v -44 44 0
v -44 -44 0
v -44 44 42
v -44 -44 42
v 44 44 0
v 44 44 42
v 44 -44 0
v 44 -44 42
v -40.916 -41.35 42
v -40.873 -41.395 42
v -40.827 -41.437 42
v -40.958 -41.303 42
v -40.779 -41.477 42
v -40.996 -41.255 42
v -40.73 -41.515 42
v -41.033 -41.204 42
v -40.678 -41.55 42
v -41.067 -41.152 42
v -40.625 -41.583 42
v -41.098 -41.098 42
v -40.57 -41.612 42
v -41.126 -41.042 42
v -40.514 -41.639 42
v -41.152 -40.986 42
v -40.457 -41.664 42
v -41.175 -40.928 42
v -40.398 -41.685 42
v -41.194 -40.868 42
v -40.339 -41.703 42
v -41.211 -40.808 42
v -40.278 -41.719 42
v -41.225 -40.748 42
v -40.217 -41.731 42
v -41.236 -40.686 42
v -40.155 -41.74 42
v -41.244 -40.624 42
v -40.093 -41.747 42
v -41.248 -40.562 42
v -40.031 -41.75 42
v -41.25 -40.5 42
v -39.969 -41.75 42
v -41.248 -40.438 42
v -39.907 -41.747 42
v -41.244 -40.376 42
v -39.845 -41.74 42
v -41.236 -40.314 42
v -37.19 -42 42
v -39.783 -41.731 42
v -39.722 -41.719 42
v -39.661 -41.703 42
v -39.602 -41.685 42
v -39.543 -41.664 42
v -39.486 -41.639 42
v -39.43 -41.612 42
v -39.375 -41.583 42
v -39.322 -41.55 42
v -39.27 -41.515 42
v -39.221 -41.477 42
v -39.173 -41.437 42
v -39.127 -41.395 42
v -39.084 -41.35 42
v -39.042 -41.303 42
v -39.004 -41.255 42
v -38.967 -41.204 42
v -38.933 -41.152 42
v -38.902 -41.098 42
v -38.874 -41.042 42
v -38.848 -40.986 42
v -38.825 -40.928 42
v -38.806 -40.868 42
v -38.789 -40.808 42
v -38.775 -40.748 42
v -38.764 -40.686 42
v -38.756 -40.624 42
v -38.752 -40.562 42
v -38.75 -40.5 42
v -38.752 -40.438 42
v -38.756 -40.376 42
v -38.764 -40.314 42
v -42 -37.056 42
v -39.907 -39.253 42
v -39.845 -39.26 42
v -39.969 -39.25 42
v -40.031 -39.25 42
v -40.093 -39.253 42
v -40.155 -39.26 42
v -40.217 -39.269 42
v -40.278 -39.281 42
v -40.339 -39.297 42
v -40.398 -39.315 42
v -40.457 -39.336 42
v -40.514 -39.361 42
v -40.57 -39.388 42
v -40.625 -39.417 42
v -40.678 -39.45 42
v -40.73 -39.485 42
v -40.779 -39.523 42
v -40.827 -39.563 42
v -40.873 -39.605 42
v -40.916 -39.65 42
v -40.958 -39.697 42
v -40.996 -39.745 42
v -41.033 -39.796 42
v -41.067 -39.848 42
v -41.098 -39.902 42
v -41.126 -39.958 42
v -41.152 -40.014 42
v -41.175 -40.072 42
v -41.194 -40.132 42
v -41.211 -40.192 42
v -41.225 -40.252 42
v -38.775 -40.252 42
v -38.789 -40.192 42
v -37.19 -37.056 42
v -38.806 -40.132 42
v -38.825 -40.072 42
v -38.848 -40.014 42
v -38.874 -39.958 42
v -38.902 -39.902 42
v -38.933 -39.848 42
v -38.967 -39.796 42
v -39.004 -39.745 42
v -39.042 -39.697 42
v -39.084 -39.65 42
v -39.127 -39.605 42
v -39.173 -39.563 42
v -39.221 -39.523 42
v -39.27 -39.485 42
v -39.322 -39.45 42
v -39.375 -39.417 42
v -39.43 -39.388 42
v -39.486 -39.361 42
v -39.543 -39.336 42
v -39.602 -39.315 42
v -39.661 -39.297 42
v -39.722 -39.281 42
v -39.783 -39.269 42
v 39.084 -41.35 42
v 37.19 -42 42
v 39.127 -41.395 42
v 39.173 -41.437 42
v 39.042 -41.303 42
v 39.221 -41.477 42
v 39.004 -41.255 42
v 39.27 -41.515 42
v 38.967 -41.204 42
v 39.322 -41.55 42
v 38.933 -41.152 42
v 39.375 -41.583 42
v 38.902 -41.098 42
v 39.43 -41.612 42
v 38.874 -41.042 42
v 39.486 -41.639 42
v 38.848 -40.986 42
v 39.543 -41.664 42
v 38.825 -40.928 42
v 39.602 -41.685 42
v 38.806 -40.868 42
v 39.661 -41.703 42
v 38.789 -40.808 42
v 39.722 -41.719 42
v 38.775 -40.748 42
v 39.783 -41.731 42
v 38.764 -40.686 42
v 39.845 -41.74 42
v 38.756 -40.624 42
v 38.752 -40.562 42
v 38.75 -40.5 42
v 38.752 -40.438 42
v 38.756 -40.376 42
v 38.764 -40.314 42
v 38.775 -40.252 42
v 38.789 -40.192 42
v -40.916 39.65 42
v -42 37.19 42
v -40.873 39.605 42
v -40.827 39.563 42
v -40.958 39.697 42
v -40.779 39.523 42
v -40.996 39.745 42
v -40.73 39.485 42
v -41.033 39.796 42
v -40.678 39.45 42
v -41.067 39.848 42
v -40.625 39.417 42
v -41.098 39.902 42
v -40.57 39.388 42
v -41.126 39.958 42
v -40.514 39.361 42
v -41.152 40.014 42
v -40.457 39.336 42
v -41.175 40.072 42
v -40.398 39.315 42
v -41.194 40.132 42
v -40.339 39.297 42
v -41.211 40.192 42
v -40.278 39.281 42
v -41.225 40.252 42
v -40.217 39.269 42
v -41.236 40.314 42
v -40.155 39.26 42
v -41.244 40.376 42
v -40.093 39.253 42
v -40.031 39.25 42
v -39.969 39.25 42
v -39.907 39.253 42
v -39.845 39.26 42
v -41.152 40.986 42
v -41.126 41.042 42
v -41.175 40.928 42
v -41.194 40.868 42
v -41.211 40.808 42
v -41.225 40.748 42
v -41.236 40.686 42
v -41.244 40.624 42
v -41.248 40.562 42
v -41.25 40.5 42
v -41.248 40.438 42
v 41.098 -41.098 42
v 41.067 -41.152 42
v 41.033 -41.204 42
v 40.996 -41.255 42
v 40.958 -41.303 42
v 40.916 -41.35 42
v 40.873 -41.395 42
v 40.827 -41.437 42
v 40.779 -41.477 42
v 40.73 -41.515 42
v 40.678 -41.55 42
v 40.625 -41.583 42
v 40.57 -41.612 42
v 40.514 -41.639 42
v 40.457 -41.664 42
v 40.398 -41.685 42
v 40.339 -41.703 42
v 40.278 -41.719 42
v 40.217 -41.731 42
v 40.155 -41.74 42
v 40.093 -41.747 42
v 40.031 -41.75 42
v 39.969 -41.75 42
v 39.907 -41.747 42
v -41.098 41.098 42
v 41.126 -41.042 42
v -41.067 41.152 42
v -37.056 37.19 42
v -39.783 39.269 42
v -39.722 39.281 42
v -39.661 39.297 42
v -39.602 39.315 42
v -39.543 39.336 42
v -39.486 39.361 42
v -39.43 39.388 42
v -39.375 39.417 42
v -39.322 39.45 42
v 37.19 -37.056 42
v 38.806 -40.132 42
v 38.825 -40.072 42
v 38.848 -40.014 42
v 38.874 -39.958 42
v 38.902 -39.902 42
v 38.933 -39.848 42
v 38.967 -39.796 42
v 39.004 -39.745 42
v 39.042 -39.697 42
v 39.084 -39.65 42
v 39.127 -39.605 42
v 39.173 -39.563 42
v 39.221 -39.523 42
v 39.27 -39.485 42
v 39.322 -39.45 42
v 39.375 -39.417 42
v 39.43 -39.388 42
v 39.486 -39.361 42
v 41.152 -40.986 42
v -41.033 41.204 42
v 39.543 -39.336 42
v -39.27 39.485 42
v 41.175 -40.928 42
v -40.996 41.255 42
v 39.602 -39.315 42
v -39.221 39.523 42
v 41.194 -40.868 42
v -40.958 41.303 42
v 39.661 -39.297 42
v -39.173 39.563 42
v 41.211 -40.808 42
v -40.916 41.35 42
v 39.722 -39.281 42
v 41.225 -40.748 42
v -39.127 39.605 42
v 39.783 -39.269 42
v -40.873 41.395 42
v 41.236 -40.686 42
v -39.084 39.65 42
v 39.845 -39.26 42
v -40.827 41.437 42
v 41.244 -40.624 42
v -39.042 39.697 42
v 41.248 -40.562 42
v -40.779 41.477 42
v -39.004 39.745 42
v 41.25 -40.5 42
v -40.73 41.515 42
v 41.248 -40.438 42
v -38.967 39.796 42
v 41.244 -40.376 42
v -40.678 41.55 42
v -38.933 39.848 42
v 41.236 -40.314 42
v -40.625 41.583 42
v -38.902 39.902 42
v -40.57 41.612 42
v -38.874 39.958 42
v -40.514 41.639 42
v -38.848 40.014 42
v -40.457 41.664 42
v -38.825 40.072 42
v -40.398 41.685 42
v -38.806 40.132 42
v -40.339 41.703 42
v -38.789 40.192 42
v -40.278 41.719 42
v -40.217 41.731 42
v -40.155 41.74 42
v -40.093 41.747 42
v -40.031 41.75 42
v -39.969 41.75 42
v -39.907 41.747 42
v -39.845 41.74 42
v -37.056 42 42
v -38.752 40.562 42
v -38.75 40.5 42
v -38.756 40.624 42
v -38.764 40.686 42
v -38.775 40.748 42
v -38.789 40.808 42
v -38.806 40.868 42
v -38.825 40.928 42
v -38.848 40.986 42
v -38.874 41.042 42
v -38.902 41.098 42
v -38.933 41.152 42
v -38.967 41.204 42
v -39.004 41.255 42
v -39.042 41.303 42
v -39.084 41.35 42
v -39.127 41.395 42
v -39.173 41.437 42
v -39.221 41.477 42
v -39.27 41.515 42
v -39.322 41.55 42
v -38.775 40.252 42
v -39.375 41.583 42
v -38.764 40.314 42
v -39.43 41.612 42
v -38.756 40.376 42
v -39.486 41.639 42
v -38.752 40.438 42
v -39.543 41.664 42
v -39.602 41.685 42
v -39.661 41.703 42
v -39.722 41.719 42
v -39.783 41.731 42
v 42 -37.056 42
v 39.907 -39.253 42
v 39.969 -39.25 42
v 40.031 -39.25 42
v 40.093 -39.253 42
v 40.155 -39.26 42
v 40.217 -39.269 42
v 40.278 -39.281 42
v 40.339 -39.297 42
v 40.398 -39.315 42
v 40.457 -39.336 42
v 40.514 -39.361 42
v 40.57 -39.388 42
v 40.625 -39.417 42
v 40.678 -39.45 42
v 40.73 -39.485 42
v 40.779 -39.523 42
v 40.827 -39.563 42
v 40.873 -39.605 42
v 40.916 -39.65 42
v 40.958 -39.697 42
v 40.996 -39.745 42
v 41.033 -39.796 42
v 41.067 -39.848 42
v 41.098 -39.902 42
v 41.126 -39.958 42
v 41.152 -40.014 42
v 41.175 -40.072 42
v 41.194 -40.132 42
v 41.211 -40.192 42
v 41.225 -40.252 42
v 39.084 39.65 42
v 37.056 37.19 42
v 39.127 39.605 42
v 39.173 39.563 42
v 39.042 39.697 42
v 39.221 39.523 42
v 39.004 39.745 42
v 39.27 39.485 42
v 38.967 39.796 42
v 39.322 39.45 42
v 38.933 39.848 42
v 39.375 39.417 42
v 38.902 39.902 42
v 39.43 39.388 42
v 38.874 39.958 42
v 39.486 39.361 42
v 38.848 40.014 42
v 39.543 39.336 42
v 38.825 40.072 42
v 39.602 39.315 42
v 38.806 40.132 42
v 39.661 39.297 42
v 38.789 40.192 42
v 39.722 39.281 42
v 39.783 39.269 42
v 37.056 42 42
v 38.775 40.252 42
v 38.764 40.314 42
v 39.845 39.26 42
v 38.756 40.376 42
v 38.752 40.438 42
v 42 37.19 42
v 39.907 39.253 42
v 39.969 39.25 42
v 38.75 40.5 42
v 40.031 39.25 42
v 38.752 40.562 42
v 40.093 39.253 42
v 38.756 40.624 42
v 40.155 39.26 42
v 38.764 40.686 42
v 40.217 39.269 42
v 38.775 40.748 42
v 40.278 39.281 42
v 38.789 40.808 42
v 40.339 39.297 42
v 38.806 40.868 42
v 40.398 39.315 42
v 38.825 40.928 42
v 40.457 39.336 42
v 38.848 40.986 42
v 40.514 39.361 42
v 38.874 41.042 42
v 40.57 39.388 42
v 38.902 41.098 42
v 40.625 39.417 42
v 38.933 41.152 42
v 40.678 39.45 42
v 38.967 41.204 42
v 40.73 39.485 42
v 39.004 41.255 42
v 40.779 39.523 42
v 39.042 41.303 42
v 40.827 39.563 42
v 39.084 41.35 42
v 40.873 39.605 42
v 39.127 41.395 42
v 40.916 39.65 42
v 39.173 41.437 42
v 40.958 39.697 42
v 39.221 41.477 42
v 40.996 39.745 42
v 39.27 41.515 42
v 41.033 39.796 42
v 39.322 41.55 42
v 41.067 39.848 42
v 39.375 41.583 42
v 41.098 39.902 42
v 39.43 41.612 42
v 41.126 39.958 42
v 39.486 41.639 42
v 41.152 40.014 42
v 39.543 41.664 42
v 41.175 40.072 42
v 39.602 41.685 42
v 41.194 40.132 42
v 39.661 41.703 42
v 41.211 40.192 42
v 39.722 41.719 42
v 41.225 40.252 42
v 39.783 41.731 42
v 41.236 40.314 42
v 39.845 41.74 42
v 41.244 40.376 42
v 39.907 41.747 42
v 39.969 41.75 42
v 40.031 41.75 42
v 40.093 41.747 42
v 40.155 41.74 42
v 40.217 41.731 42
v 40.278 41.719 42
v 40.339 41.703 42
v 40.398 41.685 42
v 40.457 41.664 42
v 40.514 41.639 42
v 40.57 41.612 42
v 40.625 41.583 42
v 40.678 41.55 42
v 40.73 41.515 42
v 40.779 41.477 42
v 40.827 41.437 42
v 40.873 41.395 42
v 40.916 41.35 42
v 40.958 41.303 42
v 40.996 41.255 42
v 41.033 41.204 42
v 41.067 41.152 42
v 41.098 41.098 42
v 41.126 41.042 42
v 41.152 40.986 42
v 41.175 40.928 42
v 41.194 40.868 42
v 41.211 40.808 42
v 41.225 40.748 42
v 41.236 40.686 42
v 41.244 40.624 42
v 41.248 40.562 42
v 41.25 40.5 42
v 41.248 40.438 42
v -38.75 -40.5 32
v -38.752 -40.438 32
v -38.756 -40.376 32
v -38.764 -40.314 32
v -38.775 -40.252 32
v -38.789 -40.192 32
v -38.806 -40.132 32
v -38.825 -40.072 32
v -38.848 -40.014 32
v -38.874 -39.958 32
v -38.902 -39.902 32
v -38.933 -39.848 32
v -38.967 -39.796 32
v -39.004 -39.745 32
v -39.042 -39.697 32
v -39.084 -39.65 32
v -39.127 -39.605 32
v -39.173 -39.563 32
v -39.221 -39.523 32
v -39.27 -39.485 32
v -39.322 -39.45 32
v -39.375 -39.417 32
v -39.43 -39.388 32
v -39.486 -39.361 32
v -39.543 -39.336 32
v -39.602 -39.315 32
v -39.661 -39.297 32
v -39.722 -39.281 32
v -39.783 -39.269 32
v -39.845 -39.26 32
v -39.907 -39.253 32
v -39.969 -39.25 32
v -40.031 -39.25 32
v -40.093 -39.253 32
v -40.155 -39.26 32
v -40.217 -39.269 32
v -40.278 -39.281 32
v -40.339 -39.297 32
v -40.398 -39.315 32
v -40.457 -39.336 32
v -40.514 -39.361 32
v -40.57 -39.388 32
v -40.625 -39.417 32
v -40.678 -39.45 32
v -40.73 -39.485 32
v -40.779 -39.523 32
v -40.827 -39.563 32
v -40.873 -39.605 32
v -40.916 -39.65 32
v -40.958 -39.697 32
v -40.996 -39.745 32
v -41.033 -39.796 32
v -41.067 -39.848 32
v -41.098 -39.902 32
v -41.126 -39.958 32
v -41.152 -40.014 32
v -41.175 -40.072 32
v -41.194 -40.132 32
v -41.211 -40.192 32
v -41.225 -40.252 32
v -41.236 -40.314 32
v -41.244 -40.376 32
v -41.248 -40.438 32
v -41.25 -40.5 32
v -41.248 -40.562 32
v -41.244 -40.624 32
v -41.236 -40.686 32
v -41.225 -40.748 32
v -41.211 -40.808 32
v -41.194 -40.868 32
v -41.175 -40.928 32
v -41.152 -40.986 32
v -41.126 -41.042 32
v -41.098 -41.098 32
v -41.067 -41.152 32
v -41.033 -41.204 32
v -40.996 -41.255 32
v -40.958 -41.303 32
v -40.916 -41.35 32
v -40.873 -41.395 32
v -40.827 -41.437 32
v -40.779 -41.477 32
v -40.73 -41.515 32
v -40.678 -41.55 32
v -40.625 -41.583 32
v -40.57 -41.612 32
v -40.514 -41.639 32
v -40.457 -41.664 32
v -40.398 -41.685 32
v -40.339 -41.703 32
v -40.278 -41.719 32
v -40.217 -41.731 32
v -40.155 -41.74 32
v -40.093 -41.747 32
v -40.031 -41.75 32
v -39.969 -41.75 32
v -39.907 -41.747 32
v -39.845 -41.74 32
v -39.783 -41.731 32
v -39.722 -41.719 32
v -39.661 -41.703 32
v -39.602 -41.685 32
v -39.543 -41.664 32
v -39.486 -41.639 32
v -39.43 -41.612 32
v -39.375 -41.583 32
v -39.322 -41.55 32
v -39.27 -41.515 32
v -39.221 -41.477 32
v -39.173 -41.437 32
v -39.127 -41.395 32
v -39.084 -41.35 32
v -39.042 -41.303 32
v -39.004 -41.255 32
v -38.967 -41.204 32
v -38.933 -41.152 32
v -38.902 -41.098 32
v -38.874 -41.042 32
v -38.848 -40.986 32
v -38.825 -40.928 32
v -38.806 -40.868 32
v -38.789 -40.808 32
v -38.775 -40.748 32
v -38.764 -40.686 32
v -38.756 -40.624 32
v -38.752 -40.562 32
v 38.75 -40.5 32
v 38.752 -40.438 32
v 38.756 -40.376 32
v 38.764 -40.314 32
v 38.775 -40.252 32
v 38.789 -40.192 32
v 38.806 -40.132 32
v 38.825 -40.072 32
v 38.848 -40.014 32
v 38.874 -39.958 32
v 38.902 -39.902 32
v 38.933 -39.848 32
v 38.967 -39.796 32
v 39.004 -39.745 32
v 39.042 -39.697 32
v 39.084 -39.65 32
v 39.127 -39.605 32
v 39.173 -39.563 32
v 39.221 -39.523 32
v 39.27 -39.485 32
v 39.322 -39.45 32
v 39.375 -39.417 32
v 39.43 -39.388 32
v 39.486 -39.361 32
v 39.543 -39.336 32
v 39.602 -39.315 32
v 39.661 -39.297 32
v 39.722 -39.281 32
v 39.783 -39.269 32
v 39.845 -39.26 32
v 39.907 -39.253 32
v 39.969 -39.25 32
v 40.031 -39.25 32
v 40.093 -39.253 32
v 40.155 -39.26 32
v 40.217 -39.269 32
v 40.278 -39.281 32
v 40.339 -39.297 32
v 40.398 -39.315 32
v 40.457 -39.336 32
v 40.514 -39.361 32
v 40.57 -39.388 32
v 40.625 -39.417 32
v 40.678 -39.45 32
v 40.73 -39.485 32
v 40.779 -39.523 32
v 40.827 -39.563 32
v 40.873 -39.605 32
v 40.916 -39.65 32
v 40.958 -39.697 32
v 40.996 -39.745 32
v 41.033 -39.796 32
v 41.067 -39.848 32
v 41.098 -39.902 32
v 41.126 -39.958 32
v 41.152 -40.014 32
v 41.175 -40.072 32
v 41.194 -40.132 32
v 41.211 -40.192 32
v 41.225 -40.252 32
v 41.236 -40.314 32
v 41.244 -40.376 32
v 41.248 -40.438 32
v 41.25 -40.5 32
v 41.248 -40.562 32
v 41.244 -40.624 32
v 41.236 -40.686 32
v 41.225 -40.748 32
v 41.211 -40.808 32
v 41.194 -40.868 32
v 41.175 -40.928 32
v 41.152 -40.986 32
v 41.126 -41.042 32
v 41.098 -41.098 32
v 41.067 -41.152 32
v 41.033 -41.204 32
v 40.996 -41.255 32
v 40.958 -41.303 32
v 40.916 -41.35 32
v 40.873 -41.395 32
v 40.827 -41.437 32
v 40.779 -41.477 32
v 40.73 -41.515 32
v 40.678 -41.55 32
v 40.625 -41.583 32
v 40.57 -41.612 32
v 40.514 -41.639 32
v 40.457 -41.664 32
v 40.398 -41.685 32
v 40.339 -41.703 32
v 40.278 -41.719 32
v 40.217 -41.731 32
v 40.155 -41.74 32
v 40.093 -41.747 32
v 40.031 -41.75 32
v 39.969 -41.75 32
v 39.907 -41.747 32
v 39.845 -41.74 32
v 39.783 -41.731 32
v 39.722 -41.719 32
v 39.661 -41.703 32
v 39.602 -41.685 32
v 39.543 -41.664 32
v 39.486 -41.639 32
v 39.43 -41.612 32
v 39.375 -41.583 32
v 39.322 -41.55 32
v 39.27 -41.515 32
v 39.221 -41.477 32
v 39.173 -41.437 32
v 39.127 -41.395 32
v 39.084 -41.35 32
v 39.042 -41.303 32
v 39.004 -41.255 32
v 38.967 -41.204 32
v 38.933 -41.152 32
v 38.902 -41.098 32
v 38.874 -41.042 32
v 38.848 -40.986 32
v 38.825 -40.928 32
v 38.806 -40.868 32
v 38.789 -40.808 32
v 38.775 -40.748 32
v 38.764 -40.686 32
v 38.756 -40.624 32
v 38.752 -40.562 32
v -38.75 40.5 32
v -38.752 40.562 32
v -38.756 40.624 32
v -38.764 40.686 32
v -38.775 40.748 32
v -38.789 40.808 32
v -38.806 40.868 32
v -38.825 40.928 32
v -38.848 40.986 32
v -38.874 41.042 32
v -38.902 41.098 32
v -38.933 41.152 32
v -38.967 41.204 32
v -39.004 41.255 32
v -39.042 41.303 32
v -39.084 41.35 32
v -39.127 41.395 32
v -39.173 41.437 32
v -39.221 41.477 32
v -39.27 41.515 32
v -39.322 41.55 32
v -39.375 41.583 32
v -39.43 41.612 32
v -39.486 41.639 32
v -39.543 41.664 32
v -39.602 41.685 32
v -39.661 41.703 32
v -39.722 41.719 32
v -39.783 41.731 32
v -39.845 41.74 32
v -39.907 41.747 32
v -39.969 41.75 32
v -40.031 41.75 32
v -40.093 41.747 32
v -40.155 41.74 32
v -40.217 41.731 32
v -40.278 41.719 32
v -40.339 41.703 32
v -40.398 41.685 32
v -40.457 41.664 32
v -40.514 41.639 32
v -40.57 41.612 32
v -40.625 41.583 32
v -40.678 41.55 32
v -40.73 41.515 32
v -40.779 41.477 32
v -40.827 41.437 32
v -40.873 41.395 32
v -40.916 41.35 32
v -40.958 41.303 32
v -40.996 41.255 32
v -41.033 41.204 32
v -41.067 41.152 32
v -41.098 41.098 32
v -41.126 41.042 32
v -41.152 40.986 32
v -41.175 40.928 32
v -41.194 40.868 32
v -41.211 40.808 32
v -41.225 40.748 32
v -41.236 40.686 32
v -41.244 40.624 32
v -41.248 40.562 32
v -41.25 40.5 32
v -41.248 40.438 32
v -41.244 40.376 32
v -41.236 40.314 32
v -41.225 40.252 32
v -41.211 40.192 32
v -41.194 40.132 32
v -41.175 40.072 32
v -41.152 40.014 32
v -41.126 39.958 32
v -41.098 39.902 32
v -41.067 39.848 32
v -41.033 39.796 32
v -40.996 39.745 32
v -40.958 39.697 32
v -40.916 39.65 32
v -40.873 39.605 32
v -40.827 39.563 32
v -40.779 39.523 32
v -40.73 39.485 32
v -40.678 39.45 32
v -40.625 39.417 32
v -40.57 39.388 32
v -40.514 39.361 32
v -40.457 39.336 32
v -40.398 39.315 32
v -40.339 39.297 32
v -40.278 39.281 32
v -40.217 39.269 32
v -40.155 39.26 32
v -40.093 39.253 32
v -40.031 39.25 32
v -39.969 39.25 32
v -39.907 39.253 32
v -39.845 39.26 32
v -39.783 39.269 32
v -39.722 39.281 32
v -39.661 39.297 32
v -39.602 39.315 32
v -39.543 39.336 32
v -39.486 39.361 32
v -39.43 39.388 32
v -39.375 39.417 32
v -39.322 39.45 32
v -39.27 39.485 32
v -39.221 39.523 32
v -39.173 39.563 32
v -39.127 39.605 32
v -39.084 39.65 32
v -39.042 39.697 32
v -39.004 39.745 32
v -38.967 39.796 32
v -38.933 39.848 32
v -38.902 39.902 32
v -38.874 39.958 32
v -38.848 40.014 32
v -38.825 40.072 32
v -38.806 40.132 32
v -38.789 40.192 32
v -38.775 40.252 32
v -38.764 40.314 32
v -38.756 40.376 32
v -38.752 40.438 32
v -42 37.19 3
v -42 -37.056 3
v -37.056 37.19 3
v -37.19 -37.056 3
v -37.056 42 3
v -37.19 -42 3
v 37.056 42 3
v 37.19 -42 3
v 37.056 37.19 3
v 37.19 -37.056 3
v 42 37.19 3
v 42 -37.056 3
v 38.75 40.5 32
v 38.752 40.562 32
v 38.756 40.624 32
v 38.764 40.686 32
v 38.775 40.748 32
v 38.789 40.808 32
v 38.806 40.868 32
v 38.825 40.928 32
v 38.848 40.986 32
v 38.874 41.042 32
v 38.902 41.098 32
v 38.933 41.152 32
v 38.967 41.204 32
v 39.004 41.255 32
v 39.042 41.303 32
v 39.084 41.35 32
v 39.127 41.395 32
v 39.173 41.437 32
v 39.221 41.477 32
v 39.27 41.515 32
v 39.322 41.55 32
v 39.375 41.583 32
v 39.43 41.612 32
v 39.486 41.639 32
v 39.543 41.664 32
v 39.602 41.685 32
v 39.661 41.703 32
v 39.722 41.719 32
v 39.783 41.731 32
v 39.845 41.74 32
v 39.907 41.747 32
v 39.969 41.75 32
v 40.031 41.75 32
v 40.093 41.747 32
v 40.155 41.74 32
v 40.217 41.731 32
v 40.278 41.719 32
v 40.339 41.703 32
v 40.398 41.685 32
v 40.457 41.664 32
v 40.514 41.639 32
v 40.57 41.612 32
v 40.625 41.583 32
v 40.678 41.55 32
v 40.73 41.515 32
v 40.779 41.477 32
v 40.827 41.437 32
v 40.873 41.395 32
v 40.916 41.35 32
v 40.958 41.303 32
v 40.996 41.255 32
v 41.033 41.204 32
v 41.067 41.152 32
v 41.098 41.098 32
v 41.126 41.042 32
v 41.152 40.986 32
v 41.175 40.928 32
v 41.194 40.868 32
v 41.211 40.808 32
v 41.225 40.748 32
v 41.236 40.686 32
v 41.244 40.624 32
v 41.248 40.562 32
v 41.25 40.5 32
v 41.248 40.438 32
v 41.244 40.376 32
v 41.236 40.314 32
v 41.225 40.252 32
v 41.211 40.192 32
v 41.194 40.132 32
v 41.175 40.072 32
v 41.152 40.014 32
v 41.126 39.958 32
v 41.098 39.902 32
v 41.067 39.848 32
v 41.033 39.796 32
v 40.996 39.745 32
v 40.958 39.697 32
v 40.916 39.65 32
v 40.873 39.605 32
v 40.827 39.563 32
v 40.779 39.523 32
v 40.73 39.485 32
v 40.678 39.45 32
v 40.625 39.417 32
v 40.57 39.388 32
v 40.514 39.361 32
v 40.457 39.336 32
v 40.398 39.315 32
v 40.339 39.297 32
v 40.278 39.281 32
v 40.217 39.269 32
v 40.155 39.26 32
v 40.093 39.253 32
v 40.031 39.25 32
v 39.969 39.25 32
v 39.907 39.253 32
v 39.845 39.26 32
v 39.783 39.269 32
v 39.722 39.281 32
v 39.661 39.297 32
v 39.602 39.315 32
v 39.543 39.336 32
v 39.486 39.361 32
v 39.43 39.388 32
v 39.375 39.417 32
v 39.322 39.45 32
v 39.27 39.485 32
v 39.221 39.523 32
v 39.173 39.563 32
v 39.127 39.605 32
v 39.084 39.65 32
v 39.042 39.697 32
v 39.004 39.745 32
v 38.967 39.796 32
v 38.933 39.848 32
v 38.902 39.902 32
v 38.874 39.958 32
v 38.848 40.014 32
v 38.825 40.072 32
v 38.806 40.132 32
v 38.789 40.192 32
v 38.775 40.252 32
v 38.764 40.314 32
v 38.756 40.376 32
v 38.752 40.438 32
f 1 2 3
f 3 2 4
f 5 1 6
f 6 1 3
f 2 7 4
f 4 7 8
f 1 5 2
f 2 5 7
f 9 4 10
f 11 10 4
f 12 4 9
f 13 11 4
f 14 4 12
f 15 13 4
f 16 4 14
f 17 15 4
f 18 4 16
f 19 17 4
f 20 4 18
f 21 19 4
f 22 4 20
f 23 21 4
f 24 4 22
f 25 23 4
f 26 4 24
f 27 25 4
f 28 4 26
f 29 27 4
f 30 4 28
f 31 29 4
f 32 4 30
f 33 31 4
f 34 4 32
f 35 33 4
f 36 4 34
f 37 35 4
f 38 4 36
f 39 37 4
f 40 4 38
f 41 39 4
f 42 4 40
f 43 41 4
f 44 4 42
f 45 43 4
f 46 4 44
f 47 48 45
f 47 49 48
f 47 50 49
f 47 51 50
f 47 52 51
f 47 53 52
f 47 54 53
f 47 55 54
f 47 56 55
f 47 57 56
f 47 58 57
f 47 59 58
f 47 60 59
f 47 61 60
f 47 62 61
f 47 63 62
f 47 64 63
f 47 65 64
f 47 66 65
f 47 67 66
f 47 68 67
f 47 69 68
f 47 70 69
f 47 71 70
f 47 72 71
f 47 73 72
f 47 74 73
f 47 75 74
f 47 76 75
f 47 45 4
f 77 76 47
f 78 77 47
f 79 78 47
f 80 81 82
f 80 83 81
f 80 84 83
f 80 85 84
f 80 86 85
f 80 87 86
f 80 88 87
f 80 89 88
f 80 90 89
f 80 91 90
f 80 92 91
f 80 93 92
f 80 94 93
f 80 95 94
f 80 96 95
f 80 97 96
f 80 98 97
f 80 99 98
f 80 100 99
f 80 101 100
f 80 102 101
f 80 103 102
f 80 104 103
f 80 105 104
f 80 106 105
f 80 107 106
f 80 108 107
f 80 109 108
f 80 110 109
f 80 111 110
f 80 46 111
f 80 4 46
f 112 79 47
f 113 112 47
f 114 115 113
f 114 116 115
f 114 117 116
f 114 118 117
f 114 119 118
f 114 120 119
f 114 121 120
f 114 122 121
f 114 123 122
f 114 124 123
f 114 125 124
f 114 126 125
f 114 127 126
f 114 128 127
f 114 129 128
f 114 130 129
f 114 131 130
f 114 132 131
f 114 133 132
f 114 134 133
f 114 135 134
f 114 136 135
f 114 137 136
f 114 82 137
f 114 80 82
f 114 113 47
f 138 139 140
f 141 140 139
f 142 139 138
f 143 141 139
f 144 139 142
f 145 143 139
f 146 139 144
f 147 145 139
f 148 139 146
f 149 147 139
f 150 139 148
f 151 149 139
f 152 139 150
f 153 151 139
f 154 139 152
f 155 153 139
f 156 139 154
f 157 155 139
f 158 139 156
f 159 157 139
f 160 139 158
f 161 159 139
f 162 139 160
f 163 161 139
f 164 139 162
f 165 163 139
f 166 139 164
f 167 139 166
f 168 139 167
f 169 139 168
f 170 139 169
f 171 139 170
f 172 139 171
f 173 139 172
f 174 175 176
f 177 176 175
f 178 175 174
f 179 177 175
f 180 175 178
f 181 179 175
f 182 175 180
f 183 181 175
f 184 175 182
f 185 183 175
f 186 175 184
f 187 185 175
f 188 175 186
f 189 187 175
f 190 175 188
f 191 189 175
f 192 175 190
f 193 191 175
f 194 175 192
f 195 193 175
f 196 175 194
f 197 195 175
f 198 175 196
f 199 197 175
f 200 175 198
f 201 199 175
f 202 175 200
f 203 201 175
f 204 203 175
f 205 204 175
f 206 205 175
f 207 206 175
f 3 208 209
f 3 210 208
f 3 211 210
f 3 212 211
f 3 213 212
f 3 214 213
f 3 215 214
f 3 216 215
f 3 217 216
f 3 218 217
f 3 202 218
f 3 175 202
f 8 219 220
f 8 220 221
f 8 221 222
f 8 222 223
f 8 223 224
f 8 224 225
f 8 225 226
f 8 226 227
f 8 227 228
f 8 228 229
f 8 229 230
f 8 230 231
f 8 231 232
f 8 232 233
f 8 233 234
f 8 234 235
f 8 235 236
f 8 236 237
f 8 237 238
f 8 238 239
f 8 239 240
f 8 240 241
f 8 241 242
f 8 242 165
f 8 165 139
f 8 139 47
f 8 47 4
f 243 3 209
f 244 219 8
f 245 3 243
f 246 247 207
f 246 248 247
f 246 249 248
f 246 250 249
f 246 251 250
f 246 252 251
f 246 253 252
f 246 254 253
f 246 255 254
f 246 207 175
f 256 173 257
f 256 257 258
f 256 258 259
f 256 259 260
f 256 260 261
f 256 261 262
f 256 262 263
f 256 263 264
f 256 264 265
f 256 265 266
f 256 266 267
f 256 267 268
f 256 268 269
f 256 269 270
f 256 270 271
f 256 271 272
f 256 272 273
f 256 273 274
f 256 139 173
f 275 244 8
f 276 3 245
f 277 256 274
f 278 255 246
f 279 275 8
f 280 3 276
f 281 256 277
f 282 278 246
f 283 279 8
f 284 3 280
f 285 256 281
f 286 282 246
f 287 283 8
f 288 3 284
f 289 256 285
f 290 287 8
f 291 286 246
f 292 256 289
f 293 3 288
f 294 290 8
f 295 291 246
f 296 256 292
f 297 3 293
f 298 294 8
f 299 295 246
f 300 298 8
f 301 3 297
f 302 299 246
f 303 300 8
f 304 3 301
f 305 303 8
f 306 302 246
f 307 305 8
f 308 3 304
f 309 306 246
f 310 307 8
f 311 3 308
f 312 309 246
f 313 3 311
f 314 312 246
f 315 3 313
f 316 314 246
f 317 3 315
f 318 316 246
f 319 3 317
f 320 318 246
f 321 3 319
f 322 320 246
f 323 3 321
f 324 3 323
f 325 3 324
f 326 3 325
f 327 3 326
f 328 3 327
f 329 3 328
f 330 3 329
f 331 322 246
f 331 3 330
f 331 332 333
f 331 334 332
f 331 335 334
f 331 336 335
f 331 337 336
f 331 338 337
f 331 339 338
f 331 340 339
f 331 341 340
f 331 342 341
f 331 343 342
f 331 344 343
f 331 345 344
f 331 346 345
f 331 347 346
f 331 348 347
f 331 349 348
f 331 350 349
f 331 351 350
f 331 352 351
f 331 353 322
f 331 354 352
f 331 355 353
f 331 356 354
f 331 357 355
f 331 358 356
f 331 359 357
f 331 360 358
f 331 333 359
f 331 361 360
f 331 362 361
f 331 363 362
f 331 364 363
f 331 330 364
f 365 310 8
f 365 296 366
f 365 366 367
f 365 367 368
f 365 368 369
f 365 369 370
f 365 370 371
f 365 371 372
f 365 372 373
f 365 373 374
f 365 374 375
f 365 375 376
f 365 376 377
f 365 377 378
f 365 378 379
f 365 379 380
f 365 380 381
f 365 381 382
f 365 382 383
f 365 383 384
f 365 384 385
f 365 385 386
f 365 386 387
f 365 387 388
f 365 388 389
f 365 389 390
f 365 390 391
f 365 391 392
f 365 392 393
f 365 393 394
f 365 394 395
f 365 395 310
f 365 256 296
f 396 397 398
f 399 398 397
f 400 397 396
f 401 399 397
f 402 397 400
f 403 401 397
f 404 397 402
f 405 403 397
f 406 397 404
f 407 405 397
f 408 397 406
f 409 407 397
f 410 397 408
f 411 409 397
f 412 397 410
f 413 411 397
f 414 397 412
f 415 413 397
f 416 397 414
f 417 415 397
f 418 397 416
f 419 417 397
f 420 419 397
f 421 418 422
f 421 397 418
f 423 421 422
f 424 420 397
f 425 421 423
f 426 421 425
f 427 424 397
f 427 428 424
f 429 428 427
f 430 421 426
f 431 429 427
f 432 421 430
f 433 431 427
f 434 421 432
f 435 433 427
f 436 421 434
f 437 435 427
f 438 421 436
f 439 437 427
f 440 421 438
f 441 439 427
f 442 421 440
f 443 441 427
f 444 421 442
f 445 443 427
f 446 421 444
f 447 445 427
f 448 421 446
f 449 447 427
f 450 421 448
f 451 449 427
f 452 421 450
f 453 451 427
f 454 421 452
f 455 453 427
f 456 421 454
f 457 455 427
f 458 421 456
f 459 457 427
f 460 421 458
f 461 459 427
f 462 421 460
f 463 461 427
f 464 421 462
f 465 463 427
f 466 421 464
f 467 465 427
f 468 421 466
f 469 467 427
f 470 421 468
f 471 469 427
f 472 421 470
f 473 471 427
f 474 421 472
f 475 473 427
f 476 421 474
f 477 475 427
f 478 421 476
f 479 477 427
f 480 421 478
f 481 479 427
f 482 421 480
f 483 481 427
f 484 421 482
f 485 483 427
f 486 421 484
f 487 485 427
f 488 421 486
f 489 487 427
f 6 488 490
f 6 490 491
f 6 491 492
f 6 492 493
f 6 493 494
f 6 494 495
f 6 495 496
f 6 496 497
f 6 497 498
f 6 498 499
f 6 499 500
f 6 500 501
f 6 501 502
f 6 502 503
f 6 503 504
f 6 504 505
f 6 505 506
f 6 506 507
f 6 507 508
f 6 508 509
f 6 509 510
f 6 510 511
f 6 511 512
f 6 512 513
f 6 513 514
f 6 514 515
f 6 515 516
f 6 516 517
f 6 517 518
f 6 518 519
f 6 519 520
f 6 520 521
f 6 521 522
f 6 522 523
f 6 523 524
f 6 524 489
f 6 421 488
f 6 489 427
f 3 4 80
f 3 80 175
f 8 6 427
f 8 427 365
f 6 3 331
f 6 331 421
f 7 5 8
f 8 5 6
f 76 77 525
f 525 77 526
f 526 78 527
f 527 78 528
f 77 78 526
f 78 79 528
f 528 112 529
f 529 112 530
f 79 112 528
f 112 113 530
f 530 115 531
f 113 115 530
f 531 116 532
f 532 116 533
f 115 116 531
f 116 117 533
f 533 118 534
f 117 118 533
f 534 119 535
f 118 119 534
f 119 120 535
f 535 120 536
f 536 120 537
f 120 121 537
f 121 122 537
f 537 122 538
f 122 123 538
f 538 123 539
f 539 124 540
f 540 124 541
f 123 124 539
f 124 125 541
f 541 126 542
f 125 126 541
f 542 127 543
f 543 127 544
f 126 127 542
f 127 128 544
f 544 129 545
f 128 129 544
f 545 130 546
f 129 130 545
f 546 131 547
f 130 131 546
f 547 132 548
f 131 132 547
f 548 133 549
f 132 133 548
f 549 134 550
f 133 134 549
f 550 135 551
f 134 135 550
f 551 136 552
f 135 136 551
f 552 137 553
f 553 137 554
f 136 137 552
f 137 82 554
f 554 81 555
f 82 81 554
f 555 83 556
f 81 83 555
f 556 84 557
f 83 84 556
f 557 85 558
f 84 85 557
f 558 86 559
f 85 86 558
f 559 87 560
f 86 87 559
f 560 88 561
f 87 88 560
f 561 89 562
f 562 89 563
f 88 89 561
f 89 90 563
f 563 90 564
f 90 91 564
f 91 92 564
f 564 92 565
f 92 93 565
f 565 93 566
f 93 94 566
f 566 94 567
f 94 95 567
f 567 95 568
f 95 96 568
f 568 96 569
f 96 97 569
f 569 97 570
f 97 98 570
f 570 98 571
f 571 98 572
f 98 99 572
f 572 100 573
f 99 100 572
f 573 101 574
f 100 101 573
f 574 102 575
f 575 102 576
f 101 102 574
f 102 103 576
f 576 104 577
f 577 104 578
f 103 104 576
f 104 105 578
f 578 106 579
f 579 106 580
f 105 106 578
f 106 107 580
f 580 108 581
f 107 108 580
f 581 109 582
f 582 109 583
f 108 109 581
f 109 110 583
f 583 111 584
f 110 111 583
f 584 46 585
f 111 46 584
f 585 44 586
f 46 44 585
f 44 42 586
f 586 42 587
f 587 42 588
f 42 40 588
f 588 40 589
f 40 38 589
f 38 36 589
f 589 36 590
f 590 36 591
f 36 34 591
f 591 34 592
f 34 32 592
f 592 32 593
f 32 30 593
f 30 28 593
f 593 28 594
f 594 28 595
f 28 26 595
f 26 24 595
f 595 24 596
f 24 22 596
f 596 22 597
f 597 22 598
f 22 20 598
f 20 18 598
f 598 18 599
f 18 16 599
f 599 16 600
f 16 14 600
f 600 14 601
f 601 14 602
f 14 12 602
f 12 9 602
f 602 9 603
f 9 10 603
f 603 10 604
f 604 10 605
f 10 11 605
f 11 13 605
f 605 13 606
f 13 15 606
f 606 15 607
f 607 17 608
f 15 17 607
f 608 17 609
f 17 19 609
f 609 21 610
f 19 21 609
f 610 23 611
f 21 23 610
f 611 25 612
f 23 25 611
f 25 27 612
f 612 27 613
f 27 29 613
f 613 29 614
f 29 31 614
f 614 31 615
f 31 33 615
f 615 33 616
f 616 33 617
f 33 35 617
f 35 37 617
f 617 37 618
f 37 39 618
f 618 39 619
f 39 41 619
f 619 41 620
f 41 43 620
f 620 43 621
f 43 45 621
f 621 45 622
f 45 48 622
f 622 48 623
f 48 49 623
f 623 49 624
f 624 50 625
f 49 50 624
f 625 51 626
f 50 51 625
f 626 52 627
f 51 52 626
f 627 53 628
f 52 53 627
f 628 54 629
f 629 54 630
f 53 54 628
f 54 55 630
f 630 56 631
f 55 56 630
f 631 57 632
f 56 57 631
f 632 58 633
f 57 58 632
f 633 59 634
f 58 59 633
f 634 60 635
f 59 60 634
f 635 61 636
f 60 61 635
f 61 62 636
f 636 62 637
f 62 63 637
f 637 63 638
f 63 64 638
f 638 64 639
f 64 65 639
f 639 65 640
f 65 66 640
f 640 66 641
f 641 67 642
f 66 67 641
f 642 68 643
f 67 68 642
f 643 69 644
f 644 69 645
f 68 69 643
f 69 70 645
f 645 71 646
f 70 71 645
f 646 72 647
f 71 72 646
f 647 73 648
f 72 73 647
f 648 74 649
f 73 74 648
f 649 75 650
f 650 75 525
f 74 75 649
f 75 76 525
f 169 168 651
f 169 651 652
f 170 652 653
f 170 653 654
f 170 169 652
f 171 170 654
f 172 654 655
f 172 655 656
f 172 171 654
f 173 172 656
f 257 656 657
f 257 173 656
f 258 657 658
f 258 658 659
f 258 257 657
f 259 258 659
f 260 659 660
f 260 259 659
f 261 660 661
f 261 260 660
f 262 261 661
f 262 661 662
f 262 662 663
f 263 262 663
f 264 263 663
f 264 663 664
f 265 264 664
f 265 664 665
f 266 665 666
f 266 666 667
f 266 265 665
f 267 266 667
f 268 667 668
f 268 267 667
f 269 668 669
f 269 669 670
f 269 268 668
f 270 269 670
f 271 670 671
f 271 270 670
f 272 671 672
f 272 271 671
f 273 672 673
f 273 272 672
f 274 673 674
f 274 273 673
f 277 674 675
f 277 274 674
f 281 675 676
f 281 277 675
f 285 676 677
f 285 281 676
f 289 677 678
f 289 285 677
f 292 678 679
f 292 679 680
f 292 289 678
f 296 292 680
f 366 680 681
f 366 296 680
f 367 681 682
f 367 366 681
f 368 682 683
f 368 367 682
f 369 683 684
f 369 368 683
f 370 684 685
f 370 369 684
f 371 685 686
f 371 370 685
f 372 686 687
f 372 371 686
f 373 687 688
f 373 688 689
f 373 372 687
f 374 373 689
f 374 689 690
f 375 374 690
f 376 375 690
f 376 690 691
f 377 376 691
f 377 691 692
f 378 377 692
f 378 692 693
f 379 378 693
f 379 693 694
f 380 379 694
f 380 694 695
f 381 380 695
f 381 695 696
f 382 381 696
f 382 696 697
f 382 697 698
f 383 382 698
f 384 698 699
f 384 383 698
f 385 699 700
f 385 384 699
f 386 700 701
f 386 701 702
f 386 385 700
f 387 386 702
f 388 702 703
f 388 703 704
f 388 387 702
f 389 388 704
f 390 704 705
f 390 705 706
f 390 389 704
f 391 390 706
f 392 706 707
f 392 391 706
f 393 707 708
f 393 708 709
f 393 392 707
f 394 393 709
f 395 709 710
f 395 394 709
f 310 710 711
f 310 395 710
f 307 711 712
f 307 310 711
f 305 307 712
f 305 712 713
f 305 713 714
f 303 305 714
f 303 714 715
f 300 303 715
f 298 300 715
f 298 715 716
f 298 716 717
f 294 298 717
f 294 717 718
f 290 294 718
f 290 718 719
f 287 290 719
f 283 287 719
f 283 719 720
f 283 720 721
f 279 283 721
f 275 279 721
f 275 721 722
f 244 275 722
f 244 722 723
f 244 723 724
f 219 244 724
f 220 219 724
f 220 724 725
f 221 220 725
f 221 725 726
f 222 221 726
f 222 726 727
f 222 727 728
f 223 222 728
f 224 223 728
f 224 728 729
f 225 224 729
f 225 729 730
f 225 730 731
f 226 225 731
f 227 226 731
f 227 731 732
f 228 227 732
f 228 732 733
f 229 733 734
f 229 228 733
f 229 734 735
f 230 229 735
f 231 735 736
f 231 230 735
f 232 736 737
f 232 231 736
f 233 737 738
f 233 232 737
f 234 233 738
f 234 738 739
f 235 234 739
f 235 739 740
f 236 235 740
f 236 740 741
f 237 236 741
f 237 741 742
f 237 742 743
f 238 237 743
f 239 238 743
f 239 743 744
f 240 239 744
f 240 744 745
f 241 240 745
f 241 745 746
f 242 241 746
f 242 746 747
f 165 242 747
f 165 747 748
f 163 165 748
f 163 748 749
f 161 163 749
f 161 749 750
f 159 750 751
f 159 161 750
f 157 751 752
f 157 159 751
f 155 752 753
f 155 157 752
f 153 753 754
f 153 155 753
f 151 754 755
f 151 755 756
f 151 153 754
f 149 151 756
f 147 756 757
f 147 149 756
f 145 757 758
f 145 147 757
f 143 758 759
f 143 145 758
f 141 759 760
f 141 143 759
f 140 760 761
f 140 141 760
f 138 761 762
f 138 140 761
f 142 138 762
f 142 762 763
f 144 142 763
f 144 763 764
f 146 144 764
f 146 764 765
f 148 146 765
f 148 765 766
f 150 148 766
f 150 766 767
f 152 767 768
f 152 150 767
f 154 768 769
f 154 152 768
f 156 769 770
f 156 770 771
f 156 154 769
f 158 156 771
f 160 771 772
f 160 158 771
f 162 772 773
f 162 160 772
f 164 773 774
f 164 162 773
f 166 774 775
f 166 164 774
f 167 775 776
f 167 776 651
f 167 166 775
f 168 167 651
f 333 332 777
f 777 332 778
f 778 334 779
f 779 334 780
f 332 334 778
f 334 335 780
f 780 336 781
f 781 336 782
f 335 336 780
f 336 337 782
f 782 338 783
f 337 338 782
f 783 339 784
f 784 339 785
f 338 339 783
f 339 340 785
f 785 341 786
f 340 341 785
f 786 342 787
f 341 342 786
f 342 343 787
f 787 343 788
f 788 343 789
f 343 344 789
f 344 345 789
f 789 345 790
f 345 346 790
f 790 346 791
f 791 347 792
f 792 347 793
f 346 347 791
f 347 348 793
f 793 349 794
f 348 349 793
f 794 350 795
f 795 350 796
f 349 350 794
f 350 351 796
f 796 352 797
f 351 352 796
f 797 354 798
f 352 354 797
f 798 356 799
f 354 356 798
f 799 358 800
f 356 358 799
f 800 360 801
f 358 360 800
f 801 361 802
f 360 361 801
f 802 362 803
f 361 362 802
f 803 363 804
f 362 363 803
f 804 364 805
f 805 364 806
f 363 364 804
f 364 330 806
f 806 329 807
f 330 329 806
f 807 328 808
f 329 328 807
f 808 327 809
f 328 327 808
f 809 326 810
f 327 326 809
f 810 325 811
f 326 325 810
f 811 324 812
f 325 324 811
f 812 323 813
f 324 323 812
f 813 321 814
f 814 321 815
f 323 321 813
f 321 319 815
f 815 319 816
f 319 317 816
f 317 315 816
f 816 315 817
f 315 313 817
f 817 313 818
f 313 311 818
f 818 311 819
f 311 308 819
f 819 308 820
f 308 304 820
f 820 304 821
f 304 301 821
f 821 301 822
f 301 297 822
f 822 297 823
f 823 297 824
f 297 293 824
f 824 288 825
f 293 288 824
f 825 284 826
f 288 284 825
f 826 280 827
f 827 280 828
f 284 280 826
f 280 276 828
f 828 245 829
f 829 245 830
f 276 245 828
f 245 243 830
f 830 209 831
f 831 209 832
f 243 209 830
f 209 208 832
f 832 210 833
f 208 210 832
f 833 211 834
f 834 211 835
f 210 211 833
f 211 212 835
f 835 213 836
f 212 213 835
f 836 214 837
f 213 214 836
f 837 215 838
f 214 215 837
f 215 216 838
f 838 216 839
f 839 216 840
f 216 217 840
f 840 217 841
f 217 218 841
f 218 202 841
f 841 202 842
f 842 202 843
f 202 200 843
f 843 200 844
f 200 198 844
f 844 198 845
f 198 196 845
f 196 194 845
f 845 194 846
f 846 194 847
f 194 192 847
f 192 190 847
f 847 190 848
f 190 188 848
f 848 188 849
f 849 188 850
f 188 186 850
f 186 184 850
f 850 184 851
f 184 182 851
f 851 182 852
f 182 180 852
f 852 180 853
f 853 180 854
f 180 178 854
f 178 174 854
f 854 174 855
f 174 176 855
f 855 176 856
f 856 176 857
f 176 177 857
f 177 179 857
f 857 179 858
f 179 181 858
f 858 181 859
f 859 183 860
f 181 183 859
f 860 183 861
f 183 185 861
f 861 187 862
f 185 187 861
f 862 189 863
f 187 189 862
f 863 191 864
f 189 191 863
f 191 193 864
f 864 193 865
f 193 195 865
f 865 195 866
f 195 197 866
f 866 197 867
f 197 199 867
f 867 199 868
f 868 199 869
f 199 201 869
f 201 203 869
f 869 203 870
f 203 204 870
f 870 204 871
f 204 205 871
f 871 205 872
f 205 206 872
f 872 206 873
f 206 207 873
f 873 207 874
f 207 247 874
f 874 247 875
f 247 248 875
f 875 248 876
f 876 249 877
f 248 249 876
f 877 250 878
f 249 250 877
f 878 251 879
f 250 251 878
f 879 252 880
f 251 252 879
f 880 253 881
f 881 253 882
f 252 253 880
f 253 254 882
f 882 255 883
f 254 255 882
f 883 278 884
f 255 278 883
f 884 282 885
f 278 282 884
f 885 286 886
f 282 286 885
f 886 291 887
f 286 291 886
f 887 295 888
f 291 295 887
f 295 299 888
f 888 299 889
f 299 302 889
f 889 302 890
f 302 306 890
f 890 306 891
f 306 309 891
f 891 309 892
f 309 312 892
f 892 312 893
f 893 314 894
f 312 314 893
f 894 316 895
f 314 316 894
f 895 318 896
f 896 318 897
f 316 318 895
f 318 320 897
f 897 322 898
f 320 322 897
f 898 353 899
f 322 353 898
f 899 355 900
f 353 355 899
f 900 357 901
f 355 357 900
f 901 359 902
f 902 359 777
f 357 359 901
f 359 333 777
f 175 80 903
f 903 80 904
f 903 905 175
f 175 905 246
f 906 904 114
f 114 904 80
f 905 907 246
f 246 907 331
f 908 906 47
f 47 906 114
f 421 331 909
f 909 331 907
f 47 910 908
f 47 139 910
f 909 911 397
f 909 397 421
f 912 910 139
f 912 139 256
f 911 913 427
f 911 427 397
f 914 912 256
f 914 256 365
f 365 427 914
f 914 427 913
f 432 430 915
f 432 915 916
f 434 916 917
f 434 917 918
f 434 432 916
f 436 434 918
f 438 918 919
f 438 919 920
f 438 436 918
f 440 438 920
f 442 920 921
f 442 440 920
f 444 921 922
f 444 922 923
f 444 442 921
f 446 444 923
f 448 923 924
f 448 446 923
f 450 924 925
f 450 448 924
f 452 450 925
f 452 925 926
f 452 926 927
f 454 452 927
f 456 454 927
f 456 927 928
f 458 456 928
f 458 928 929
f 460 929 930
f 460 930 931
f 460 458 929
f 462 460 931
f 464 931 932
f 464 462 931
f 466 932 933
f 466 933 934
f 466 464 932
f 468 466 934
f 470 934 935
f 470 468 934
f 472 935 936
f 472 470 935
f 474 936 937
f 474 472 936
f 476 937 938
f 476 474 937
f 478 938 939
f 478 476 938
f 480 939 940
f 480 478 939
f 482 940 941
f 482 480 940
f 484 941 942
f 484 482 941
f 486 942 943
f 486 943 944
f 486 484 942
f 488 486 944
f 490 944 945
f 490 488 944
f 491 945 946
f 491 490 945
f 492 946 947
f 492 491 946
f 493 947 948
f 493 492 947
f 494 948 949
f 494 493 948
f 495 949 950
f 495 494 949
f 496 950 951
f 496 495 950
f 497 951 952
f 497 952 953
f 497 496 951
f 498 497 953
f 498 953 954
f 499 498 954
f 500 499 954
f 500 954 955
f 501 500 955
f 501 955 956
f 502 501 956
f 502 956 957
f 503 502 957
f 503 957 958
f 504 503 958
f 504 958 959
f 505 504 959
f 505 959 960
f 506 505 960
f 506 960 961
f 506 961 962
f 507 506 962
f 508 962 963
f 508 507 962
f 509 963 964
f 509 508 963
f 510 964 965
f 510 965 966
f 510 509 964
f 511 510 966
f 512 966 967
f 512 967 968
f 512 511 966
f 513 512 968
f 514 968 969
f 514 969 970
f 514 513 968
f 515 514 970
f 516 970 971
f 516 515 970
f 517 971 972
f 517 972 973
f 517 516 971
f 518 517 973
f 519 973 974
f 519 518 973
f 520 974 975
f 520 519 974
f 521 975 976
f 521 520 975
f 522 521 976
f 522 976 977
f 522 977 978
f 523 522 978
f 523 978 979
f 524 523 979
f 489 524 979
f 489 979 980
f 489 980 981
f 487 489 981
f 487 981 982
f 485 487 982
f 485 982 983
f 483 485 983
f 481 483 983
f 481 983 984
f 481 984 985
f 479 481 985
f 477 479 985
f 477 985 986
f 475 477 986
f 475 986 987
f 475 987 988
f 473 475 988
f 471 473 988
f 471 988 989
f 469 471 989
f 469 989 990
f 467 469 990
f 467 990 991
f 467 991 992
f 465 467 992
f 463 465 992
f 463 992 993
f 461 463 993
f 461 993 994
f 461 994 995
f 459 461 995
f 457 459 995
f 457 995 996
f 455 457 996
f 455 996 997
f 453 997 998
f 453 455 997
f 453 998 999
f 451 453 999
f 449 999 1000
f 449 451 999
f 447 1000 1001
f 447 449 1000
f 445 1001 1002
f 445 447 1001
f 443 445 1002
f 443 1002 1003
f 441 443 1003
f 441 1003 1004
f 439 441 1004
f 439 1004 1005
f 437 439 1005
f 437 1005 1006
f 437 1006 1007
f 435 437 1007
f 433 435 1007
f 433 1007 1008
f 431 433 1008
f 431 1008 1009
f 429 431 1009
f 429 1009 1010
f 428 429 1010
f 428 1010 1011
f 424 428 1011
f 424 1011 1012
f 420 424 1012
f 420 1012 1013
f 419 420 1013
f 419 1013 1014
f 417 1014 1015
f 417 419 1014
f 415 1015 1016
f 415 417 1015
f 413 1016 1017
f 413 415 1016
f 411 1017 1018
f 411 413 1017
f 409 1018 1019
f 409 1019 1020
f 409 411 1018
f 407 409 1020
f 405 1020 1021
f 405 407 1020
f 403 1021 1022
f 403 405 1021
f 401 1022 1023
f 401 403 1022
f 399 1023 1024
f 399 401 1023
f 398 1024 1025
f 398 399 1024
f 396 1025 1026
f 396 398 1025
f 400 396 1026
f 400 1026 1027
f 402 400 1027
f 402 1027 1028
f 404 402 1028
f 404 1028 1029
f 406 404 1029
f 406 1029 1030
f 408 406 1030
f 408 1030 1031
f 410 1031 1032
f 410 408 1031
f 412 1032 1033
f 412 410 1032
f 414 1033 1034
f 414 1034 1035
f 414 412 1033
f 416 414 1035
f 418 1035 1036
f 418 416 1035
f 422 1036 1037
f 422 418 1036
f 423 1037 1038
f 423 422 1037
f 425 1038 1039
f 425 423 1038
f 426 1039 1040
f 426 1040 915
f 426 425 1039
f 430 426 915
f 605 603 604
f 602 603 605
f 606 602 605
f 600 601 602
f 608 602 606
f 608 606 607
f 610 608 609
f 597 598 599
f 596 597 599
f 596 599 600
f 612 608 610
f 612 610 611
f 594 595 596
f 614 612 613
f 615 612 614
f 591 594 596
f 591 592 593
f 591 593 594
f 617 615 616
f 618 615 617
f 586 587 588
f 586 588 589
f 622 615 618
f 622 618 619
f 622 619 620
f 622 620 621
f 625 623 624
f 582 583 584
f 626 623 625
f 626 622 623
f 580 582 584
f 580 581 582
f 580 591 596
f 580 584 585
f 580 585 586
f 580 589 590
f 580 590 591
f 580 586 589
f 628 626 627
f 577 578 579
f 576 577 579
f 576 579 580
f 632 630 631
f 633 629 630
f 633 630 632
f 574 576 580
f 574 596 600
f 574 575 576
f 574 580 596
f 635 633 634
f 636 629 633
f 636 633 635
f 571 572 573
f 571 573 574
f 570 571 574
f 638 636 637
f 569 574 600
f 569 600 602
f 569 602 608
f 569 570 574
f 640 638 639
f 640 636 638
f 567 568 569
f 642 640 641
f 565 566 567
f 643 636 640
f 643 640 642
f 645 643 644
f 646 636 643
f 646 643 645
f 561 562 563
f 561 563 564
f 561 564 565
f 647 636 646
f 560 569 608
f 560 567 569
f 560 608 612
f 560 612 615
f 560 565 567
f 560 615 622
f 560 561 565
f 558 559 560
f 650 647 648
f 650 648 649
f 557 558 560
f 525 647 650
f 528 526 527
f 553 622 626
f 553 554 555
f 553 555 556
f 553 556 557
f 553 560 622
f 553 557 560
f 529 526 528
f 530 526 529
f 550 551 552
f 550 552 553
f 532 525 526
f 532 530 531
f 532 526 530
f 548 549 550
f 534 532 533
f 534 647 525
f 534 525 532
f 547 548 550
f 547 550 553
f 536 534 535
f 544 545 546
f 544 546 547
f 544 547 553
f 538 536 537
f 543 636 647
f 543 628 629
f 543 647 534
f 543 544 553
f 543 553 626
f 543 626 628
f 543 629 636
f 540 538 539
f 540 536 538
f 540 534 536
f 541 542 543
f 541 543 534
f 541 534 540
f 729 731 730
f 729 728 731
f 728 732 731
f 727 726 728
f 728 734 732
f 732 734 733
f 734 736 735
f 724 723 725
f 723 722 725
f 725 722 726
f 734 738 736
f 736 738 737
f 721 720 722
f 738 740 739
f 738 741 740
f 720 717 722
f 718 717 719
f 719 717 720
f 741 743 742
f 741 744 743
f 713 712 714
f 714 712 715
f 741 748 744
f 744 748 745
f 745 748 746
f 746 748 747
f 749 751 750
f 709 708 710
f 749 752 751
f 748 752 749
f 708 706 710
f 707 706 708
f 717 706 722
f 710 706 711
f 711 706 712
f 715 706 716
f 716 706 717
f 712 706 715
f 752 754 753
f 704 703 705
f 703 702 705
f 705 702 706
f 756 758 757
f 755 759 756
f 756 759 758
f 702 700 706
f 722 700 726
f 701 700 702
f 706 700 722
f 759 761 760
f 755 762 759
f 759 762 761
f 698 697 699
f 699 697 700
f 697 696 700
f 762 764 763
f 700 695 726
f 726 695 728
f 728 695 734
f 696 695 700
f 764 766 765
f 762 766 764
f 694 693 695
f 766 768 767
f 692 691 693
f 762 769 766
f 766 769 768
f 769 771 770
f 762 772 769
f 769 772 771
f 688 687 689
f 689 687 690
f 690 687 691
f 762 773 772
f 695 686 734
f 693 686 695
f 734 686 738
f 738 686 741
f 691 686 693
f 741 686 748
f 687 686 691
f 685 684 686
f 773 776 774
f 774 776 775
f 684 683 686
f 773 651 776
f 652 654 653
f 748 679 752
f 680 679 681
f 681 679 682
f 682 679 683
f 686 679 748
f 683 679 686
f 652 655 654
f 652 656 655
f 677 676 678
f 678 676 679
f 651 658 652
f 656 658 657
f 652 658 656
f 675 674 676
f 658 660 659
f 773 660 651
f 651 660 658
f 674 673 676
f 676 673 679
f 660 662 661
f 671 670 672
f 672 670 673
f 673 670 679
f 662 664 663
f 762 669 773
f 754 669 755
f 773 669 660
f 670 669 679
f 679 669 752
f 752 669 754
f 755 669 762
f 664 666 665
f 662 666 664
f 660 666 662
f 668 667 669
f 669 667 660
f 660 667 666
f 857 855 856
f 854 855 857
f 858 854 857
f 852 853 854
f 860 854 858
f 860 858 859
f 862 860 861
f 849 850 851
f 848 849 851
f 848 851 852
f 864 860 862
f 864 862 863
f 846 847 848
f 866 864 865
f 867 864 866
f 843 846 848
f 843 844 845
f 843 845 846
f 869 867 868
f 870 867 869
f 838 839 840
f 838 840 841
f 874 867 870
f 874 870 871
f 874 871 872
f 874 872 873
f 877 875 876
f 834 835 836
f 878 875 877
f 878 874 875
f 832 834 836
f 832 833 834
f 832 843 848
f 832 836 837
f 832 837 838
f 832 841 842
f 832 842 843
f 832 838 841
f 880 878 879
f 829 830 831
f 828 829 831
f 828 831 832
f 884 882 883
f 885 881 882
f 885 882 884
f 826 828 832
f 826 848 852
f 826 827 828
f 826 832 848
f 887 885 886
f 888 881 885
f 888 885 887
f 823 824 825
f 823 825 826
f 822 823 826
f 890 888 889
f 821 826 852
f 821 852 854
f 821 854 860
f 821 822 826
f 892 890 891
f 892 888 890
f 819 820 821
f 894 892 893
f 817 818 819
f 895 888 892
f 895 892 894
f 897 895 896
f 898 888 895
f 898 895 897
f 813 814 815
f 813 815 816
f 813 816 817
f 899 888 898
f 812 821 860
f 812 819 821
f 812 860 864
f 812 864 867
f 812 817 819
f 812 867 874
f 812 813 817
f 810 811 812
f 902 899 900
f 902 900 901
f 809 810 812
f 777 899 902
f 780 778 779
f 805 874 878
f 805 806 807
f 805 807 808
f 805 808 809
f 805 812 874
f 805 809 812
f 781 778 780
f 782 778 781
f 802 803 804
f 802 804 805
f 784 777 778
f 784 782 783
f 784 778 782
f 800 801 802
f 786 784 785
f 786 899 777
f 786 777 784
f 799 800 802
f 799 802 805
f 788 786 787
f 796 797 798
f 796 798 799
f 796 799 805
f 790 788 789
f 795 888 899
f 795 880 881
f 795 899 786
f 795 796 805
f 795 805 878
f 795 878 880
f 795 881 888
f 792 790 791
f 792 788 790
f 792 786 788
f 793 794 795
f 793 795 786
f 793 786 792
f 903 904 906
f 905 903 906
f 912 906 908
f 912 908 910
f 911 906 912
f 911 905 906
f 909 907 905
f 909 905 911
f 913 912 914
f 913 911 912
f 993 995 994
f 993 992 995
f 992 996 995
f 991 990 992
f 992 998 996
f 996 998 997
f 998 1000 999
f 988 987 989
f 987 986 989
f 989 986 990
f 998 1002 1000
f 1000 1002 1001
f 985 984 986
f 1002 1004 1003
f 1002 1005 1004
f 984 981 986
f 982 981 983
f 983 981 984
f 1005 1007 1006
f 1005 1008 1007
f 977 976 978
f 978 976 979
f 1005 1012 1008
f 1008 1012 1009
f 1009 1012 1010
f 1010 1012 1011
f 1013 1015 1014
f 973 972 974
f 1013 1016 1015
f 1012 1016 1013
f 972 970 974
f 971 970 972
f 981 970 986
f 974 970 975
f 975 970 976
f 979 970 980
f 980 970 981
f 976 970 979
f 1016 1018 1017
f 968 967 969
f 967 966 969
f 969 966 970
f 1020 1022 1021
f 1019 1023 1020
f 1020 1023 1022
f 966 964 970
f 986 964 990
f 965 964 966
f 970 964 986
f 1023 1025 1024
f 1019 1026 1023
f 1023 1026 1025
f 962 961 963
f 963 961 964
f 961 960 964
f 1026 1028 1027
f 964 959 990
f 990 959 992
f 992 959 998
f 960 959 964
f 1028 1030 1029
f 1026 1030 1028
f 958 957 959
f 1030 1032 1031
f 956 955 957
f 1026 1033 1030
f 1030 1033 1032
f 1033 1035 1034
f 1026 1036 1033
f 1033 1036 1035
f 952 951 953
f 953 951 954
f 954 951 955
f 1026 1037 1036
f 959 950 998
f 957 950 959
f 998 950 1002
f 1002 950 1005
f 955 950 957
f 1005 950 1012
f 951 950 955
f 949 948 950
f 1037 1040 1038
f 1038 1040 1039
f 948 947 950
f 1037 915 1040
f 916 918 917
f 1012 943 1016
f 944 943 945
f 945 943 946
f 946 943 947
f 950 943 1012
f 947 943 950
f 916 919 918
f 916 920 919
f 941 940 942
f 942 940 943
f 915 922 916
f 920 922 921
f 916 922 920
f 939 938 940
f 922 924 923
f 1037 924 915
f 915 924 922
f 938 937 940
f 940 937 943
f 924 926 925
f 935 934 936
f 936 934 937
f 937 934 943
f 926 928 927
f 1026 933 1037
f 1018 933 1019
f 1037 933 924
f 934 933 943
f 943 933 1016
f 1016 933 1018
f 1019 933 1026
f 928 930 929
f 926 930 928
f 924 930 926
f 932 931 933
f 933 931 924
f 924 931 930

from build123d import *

# Parameters (mm, degrees)
SKETCH_W        = 88
SKETCH_H        = 88
PAD_DEPTH       = 42
SKETCH001_W     = 84
SKETCH001_H     = 84
POCKET_DEPTH    = 39
SKETCH002_W     = 5
SKETCH002_H     = 5
PAD001_DEPTH    = 39
SKETCH003_R     = 1.25
POCKET001_DEPTH = 10


with BuildPart() as part:
    # Sketch → Pad (new body)
    with BuildSketch(Plane.XY):
        Rectangle(SKETCH_W, SKETCH_H)
    extrude(amount=PAD_DEPTH)

    # Sketch001 (on Face6 of Pad) → Pocket (cut)
    with BuildSketch(Plane.XY.offset(42)):
        Rectangle(SKETCH001_W, SKETCH001_H)
    extrude(amount=-POCKET_DEPTH, mode=Mode.SUBTRACT)

    # Sketch002 (on Face11 of Pocket) → Pad001 (join)
    with BuildSketch(Plane.XY.offset(3)):
        with Locations((-39.556091, 39.69)):
            Rectangle(SKETCH002_W, SKETCH002_H)
        with Locations((-39.69, -39.556091)):
            Rectangle(SKETCH002_W, SKETCH002_H)
    pad001 = extrude(amount=PAD001_DEPTH)

    # Mirrored: Pad001 across Sketch002 V_Axis
    add(pad001.mirror(Plane(origin=(0, 0, 3), x_dir=(0, 0, 1), z_dir=(1, 0, 0))))

    # Sketch003 (on Face6 of Mirrored) → Pocket001 (cut)
    with BuildSketch(Plane.XY.offset(42)):
        with Locations((-40, 40.5)):
            Circle(SKETCH003_R)
        with Locations((-40, -40.5)):
            Circle(SKETCH003_R)
    pocket001 = extrude(amount=-POCKET001_DEPTH, mode=Mode.SUBTRACT)

    # Mirrored001: Pocket001 across Sketch003 V_Axis
    add(pocket001.mirror(Plane(origin=(0, 0, 42), x_dir=(0, 0, 1), z_dir=(1, 0, 0))), mode=Mode.SUBTRACT)


solid = part.part
